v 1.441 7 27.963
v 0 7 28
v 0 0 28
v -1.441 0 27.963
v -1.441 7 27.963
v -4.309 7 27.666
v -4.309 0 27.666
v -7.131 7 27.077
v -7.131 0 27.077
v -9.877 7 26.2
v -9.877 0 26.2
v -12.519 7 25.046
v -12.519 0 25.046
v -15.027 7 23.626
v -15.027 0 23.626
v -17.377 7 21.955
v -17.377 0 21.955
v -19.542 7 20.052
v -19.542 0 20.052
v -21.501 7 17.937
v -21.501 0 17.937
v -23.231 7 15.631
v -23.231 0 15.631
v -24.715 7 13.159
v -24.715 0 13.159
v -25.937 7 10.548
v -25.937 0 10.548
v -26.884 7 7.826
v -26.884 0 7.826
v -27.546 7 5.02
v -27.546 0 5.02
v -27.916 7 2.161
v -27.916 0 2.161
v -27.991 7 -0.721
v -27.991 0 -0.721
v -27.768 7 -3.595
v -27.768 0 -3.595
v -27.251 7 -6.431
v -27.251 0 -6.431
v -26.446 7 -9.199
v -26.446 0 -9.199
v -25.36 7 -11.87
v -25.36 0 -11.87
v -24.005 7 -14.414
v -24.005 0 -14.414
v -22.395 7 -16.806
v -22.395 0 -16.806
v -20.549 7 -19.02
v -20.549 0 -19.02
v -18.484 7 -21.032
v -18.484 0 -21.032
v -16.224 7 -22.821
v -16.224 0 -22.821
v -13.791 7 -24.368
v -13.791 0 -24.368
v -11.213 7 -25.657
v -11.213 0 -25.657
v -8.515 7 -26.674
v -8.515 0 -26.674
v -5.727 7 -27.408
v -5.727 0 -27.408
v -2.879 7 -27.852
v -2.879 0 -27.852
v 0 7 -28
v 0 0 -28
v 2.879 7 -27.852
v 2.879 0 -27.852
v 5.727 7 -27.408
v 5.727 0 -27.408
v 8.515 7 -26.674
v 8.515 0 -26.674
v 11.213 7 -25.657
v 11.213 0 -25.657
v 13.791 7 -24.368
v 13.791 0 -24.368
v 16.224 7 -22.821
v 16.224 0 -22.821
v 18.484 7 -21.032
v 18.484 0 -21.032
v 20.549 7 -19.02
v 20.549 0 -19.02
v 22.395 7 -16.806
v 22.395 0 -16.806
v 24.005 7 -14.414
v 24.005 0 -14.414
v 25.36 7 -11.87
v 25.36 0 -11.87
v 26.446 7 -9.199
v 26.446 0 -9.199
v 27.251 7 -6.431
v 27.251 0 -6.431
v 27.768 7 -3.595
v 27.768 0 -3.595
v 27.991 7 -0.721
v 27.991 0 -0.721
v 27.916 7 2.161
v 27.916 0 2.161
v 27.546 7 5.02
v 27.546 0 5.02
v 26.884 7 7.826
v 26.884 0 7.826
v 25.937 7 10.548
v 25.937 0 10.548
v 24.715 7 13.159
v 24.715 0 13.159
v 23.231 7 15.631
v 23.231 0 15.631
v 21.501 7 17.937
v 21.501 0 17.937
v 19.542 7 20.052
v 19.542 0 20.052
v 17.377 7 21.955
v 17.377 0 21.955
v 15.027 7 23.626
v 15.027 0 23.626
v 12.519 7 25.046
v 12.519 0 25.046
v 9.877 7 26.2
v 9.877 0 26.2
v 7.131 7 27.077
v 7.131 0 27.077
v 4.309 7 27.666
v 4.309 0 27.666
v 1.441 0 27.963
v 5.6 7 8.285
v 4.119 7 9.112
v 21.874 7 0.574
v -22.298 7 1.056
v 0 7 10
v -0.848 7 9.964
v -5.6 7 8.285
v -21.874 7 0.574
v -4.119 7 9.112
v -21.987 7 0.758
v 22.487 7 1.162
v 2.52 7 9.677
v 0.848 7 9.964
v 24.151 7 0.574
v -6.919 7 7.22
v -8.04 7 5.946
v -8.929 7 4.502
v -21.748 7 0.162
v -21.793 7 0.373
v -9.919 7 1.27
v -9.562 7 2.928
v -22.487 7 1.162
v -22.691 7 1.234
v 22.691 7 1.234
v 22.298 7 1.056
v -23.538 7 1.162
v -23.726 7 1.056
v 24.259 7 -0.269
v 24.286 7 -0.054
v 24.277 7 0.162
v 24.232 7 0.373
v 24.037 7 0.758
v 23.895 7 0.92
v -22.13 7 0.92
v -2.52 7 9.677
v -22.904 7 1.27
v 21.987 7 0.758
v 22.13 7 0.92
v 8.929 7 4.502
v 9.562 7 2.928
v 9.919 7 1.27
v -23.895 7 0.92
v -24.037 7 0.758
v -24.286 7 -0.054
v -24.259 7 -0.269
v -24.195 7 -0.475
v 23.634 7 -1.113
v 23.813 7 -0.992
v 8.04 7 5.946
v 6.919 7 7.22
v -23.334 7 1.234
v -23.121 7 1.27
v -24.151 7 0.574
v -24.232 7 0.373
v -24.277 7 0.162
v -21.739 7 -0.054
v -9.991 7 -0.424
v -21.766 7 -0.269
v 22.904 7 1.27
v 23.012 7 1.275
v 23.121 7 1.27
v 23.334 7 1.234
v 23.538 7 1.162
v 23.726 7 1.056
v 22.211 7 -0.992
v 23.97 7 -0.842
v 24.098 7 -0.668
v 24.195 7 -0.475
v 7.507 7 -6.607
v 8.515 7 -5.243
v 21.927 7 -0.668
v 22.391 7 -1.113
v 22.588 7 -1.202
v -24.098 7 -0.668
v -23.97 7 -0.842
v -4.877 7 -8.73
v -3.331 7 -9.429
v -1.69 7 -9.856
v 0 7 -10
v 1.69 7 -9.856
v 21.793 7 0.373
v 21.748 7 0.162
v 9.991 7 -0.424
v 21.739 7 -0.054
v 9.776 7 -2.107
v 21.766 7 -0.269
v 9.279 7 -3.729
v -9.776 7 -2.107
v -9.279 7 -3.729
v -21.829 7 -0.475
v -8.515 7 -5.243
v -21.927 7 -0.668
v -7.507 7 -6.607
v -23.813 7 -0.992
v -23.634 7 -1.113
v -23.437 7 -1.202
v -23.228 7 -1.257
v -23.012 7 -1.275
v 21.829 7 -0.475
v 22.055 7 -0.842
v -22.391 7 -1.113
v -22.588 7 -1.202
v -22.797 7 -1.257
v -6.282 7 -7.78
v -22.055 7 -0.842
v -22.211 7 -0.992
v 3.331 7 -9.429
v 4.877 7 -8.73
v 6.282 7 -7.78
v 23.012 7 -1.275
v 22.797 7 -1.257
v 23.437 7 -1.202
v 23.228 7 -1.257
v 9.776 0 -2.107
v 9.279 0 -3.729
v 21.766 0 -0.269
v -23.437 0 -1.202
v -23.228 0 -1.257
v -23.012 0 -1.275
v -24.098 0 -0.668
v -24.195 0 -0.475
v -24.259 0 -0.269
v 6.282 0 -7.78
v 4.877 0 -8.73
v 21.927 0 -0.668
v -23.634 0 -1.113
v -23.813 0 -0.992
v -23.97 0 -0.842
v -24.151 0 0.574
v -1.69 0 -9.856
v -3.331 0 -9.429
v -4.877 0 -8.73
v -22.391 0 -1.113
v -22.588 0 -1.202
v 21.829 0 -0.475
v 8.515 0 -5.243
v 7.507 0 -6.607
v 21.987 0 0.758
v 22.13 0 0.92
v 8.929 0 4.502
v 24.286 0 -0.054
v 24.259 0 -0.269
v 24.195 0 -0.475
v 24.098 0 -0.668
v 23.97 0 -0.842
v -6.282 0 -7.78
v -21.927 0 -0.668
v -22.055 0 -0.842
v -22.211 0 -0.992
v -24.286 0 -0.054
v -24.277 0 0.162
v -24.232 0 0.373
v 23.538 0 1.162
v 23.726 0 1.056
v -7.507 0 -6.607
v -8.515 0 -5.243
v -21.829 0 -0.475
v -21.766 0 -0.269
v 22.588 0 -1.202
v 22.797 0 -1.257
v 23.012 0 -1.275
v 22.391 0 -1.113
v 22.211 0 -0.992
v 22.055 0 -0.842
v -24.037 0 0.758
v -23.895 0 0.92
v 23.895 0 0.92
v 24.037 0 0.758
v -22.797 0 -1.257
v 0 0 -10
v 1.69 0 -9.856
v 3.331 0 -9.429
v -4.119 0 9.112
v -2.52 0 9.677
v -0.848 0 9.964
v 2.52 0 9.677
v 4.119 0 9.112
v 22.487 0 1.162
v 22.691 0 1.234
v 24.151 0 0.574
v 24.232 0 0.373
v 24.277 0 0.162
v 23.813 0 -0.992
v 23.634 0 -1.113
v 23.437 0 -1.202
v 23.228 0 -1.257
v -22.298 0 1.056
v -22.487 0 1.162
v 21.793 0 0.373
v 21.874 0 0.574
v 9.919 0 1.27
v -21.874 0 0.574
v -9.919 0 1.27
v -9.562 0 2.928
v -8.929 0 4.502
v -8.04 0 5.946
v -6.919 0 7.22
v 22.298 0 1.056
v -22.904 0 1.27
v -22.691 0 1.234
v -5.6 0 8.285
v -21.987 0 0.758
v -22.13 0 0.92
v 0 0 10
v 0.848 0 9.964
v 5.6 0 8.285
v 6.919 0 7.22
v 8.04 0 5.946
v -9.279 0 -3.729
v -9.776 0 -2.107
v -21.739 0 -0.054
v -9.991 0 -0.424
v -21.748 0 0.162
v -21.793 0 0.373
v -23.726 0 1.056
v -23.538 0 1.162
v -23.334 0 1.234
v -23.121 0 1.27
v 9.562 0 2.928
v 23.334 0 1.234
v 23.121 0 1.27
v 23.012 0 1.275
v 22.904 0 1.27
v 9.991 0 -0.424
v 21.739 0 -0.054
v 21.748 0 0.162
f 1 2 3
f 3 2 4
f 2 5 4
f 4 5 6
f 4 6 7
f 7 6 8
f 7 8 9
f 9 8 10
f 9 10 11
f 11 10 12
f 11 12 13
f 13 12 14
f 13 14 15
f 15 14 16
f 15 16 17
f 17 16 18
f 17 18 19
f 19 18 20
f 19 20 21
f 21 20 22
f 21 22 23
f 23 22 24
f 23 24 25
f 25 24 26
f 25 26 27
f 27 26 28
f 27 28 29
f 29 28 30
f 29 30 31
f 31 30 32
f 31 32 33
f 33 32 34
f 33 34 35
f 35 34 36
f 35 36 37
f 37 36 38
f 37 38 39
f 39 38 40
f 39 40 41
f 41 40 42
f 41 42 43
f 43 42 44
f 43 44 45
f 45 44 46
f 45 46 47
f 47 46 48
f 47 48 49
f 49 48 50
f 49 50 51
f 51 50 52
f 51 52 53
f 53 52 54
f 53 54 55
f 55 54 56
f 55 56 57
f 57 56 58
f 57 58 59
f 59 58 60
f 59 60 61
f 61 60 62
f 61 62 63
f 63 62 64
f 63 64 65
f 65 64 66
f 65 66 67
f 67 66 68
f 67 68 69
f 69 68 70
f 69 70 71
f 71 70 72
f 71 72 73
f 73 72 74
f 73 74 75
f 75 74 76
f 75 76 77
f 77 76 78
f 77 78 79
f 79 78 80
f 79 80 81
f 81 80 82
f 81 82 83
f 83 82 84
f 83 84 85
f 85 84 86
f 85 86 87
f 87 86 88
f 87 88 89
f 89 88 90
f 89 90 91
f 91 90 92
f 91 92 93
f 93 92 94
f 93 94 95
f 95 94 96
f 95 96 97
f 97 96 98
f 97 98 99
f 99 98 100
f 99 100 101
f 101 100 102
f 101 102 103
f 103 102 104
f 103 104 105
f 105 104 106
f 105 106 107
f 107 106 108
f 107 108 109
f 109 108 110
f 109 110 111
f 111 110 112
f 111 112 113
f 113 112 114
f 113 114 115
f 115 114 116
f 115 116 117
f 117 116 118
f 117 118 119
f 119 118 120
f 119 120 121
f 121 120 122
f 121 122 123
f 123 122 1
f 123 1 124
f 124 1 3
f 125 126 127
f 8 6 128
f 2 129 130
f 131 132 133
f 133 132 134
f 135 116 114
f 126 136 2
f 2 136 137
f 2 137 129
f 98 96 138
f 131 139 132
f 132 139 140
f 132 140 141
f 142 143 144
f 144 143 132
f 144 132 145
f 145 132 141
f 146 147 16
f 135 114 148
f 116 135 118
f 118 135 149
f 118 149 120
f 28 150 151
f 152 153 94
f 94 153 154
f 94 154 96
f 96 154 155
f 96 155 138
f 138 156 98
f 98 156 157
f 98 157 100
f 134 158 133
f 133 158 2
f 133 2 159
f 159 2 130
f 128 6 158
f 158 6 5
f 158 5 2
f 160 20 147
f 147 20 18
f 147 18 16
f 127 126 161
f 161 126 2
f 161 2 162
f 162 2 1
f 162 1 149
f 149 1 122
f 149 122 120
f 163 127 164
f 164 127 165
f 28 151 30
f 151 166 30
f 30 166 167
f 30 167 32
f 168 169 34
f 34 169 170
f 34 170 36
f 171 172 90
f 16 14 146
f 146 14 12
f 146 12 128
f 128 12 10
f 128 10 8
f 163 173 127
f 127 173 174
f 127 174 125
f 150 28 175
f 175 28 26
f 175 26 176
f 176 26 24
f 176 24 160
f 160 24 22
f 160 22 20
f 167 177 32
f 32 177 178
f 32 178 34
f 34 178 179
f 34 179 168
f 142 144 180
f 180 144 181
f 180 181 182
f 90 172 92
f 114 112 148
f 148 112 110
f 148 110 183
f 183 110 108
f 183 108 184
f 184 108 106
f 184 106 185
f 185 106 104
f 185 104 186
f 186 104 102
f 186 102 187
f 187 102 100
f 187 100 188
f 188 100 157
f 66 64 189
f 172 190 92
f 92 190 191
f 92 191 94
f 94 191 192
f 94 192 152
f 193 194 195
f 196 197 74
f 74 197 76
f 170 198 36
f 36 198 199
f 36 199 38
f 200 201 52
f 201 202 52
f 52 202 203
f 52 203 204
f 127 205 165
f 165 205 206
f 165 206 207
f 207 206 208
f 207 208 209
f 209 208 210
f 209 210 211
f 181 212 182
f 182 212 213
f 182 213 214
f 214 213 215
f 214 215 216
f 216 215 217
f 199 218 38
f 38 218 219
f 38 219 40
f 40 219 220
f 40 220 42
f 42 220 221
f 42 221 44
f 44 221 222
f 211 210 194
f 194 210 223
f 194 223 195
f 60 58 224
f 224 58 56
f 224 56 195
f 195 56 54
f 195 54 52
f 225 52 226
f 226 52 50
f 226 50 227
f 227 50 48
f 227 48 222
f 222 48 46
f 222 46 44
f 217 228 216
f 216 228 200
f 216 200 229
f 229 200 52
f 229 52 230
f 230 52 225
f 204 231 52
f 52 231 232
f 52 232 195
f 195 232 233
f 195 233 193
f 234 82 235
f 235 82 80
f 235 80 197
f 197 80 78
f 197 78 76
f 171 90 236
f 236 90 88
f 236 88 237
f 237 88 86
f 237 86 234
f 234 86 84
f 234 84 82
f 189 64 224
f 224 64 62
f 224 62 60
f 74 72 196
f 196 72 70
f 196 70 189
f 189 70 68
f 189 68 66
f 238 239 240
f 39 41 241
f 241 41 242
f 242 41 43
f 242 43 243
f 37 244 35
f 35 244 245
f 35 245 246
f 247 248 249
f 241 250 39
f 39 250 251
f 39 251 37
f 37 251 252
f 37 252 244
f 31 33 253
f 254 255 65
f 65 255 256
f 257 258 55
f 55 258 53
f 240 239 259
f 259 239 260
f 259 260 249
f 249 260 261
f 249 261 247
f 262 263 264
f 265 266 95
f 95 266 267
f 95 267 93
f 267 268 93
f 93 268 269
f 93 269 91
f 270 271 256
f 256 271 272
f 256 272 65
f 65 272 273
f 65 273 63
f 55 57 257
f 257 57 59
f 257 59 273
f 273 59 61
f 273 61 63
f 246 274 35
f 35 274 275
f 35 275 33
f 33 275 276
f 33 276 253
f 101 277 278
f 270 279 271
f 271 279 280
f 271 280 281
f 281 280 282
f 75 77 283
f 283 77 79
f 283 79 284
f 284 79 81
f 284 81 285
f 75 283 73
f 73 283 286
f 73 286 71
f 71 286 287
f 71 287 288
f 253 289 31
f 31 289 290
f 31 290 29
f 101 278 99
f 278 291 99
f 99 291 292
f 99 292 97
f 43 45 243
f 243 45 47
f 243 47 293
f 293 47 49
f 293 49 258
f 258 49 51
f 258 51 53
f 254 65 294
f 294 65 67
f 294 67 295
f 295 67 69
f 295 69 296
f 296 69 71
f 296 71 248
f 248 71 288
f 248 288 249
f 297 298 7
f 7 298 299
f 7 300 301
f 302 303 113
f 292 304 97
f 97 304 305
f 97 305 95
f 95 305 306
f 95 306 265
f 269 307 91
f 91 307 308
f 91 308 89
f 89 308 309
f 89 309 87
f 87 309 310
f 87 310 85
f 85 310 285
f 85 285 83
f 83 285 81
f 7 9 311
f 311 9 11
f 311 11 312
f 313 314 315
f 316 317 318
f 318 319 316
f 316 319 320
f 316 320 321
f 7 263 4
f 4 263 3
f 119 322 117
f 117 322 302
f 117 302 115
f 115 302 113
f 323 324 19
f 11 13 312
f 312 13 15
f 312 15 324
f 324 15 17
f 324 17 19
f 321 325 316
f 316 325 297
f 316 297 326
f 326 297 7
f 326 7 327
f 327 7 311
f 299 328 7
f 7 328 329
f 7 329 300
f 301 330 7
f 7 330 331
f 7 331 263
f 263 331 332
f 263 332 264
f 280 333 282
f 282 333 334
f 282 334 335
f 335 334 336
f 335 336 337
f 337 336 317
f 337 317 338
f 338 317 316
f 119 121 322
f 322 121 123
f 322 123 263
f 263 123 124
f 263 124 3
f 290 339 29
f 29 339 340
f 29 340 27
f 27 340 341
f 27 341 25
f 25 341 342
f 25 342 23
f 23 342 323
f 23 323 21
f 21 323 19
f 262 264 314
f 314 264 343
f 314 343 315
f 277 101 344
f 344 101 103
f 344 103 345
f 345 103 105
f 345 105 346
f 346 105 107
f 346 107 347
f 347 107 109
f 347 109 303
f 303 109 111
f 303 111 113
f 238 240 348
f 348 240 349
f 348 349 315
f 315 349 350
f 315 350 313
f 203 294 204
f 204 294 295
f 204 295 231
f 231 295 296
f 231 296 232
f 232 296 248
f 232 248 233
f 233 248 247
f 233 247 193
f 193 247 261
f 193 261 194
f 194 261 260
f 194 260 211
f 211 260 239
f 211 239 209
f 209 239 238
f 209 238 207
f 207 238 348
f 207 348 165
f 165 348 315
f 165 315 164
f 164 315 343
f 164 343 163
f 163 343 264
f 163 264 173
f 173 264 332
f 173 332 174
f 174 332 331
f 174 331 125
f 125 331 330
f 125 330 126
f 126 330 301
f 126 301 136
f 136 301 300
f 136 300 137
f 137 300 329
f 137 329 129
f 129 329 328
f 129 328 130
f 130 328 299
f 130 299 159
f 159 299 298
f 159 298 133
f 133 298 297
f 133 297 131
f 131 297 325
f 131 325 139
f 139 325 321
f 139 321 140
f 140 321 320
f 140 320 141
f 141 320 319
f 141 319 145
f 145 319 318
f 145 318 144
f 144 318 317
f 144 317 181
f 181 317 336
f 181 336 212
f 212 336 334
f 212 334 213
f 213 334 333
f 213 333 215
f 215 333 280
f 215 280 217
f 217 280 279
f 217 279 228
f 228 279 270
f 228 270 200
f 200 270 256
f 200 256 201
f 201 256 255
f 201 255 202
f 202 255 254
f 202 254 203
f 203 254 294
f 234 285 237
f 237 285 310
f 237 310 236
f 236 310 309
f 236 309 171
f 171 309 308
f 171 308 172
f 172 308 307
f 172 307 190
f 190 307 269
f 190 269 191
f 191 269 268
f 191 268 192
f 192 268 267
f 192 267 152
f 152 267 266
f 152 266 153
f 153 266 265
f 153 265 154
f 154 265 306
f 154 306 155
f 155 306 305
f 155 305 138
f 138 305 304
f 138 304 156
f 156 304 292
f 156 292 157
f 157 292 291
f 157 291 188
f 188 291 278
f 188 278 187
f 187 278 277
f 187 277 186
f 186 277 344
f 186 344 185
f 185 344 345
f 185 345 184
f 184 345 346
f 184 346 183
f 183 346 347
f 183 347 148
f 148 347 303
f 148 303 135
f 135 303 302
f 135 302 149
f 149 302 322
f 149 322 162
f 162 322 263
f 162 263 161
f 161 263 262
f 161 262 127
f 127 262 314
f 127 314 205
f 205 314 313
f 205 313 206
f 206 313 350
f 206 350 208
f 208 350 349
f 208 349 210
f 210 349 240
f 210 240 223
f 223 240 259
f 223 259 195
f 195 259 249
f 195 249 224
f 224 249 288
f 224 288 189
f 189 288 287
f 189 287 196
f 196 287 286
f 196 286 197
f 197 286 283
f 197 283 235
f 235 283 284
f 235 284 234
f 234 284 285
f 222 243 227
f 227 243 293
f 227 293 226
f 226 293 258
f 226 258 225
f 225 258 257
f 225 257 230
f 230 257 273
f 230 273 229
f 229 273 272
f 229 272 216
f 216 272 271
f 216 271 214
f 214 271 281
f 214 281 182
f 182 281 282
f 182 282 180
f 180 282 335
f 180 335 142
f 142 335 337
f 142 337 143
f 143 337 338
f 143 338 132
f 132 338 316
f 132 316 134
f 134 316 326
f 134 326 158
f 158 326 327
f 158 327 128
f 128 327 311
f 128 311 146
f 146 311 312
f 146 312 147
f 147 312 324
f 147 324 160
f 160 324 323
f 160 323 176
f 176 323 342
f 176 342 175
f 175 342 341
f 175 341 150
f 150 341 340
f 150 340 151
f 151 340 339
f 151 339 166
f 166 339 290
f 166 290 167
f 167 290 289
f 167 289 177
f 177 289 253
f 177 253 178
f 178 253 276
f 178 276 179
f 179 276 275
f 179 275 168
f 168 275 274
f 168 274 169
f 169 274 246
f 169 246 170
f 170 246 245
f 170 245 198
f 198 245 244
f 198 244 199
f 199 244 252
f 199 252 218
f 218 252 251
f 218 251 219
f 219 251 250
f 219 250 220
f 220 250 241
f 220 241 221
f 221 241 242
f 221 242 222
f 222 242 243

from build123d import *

# Parameters (mm, degrees)
SKETCH1_R           = 28
BOSS_EXTRUDE1_DEPTH = 7
SKETCH2_R           = 10
CUT_EXTRUDE1_DEPTH  = 41.211938526
SKETCH3_R           = 1.275
CUT_EXTRUDE2_DEPTH  = 41.211938526
CIRPATTERN1_COUNT   = 2


with BuildPart() as part:
    # Sketch1 → Boss-Extrude1 (new body)
    with BuildSketch(Plane(origin=(0, 0, 0), x_dir=(1, 0, 0), z_dir=(0, 1, 0))):
        with Locations(Location((0, 0, 0), (0, 0, 270))):
            Circle(SKETCH1_R)
    extrude(amount=BOSS_EXTRUDE1_DEPTH)

    # Sketch2 → Cut-Extrude1 (cut, through all)
    with BuildSketch(Plane(origin=(0, 0, 0), x_dir=(1, 0, 0), z_dir=(0, 1, 0))):
        with Locations(Location((0, 0, 0), (0, 0, 270))):
            Circle(SKETCH2_R)
    extrude(amount=CUT_EXTRUDE1_DEPTH, mode=Mode.SUBTRACT)

    # Sketch3 → Cut-Extrude2 (cut, through all)
    with BuildSketch(Plane(origin=(0, 0, 0), x_dir=(1, 0, 0), z_dir=(0, 1, 0))):
        with Locations(Location((23.0124, 0, 0), (0, 0, 270))):
            Circle(SKETCH3_R)
    cut_extrude2 = extrude(amount=CUT_EXTRUDE2_DEPTH, mode=Mode.SUBTRACT)

    # CirPattern1: Cut-Extrude2 ×2 about axis
    cirpattern1_axis = Axis((0, 0, 0), (0, 1, 0))
    for i in range(1, CIRPATTERN1_COUNT):
        add(cut_extrude2.rotate(cirpattern1_axis, i * 360 / CIRPATTERN1_COUNT), mode=Mode.SUBTRACT)


solid = part.part
